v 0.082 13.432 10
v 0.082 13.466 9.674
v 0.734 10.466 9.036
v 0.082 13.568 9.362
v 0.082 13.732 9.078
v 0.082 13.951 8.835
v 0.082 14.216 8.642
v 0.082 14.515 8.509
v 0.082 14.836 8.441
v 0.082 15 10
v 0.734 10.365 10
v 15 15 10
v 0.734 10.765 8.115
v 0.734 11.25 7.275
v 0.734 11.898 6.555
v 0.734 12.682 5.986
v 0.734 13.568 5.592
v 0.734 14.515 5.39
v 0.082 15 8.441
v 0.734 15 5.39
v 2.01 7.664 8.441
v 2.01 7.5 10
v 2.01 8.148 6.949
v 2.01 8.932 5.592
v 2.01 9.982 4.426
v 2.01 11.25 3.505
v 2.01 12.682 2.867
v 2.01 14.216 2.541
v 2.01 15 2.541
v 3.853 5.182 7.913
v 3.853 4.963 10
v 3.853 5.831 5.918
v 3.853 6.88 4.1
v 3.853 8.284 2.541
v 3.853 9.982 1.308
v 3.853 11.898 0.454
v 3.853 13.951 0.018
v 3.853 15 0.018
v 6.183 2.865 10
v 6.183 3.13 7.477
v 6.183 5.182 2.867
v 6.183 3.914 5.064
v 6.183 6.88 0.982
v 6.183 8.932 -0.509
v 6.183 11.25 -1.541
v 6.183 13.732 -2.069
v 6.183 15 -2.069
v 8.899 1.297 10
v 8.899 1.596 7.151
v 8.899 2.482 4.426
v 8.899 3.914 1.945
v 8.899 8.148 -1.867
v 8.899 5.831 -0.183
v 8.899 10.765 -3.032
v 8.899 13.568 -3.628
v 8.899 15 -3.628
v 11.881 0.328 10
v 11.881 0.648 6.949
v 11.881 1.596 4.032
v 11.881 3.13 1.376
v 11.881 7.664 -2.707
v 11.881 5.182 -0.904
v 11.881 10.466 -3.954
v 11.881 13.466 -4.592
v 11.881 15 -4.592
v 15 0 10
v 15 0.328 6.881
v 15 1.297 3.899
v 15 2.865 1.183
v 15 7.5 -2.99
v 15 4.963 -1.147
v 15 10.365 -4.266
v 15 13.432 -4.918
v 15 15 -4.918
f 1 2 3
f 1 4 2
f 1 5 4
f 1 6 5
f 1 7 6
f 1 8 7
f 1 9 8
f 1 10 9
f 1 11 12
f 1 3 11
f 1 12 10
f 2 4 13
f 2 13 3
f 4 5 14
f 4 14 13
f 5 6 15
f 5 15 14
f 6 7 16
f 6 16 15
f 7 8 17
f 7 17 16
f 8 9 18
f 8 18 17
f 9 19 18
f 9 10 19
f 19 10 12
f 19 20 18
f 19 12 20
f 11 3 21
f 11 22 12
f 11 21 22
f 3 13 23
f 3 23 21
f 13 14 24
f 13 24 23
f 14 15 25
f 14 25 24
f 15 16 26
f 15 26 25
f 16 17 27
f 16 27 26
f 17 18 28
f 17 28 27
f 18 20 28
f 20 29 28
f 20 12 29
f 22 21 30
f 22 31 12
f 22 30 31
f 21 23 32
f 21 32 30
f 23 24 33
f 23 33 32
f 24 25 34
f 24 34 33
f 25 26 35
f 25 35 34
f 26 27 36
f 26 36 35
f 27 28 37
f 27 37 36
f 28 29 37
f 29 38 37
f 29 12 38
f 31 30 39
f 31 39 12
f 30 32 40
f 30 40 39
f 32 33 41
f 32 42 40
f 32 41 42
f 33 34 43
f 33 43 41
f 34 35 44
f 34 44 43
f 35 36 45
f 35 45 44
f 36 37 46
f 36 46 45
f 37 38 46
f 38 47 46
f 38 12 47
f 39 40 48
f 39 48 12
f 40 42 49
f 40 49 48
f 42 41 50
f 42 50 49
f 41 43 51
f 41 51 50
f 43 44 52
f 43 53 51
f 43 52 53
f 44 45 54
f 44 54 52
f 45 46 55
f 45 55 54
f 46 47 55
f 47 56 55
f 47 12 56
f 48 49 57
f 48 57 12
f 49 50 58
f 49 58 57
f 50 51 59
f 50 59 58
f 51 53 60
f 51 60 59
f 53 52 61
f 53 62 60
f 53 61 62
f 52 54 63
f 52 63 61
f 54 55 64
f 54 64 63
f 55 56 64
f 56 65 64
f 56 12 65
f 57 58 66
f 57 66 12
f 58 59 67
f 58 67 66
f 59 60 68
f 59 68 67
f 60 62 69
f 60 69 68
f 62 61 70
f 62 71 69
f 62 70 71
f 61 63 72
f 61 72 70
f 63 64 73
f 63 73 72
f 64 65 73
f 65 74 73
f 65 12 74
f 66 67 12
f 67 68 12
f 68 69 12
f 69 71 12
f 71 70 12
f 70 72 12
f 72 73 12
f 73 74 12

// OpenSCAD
// Start: lazy_union
default_5_default_5();
// End: lazy_union

// Modules.

// 'PartMaterial undef-default - default 5.0'
module default_5_default_5() {
  // 'None : _combine_solids_and_holes'
  union() {
    // 'intersection : _combine_solids_and_holes'
    union() {
      // 'overall : _combine_solids_and_holes'
      intersection() {
        // 'box'
        multmatrix(m=[[1.0, 0.0, 0.0, -15.0], [0.0, 1.0, 0.0, -15.0], [0.0, 0.0, 1.0, -10.0], [0.0, 0.0, 0.0, 1.0]]) {
          // 'box'
          color(c=[0.9, 0.1, 0.1, 1.0]) {
            // 'box : _combine_solids_and_holes'
            union() {
              // 'box'
              cube(size=[30.0, 30.0, 20.0]);
            }
          }
        }
        // 'sphere'
        multmatrix(m=[[0.0, 0.0, -1.0, 15.0], [-1.0, 0.0, 0.0, 15.0], [0.0, 1.0, 0.0, 10.0], [0.0, 0.0, 0.0, 1.0]]) {
          // 'sphere'
          color(c=[0.1, 0.1, 0.8, 1.0]) {
            // 'sphere : _combine_solids_and_holes'
            union() {
              // 'sphere'
              sphere(r=15.0);
            }
          }
        }
      }
    }
  }
} // end module default_5_default_5
